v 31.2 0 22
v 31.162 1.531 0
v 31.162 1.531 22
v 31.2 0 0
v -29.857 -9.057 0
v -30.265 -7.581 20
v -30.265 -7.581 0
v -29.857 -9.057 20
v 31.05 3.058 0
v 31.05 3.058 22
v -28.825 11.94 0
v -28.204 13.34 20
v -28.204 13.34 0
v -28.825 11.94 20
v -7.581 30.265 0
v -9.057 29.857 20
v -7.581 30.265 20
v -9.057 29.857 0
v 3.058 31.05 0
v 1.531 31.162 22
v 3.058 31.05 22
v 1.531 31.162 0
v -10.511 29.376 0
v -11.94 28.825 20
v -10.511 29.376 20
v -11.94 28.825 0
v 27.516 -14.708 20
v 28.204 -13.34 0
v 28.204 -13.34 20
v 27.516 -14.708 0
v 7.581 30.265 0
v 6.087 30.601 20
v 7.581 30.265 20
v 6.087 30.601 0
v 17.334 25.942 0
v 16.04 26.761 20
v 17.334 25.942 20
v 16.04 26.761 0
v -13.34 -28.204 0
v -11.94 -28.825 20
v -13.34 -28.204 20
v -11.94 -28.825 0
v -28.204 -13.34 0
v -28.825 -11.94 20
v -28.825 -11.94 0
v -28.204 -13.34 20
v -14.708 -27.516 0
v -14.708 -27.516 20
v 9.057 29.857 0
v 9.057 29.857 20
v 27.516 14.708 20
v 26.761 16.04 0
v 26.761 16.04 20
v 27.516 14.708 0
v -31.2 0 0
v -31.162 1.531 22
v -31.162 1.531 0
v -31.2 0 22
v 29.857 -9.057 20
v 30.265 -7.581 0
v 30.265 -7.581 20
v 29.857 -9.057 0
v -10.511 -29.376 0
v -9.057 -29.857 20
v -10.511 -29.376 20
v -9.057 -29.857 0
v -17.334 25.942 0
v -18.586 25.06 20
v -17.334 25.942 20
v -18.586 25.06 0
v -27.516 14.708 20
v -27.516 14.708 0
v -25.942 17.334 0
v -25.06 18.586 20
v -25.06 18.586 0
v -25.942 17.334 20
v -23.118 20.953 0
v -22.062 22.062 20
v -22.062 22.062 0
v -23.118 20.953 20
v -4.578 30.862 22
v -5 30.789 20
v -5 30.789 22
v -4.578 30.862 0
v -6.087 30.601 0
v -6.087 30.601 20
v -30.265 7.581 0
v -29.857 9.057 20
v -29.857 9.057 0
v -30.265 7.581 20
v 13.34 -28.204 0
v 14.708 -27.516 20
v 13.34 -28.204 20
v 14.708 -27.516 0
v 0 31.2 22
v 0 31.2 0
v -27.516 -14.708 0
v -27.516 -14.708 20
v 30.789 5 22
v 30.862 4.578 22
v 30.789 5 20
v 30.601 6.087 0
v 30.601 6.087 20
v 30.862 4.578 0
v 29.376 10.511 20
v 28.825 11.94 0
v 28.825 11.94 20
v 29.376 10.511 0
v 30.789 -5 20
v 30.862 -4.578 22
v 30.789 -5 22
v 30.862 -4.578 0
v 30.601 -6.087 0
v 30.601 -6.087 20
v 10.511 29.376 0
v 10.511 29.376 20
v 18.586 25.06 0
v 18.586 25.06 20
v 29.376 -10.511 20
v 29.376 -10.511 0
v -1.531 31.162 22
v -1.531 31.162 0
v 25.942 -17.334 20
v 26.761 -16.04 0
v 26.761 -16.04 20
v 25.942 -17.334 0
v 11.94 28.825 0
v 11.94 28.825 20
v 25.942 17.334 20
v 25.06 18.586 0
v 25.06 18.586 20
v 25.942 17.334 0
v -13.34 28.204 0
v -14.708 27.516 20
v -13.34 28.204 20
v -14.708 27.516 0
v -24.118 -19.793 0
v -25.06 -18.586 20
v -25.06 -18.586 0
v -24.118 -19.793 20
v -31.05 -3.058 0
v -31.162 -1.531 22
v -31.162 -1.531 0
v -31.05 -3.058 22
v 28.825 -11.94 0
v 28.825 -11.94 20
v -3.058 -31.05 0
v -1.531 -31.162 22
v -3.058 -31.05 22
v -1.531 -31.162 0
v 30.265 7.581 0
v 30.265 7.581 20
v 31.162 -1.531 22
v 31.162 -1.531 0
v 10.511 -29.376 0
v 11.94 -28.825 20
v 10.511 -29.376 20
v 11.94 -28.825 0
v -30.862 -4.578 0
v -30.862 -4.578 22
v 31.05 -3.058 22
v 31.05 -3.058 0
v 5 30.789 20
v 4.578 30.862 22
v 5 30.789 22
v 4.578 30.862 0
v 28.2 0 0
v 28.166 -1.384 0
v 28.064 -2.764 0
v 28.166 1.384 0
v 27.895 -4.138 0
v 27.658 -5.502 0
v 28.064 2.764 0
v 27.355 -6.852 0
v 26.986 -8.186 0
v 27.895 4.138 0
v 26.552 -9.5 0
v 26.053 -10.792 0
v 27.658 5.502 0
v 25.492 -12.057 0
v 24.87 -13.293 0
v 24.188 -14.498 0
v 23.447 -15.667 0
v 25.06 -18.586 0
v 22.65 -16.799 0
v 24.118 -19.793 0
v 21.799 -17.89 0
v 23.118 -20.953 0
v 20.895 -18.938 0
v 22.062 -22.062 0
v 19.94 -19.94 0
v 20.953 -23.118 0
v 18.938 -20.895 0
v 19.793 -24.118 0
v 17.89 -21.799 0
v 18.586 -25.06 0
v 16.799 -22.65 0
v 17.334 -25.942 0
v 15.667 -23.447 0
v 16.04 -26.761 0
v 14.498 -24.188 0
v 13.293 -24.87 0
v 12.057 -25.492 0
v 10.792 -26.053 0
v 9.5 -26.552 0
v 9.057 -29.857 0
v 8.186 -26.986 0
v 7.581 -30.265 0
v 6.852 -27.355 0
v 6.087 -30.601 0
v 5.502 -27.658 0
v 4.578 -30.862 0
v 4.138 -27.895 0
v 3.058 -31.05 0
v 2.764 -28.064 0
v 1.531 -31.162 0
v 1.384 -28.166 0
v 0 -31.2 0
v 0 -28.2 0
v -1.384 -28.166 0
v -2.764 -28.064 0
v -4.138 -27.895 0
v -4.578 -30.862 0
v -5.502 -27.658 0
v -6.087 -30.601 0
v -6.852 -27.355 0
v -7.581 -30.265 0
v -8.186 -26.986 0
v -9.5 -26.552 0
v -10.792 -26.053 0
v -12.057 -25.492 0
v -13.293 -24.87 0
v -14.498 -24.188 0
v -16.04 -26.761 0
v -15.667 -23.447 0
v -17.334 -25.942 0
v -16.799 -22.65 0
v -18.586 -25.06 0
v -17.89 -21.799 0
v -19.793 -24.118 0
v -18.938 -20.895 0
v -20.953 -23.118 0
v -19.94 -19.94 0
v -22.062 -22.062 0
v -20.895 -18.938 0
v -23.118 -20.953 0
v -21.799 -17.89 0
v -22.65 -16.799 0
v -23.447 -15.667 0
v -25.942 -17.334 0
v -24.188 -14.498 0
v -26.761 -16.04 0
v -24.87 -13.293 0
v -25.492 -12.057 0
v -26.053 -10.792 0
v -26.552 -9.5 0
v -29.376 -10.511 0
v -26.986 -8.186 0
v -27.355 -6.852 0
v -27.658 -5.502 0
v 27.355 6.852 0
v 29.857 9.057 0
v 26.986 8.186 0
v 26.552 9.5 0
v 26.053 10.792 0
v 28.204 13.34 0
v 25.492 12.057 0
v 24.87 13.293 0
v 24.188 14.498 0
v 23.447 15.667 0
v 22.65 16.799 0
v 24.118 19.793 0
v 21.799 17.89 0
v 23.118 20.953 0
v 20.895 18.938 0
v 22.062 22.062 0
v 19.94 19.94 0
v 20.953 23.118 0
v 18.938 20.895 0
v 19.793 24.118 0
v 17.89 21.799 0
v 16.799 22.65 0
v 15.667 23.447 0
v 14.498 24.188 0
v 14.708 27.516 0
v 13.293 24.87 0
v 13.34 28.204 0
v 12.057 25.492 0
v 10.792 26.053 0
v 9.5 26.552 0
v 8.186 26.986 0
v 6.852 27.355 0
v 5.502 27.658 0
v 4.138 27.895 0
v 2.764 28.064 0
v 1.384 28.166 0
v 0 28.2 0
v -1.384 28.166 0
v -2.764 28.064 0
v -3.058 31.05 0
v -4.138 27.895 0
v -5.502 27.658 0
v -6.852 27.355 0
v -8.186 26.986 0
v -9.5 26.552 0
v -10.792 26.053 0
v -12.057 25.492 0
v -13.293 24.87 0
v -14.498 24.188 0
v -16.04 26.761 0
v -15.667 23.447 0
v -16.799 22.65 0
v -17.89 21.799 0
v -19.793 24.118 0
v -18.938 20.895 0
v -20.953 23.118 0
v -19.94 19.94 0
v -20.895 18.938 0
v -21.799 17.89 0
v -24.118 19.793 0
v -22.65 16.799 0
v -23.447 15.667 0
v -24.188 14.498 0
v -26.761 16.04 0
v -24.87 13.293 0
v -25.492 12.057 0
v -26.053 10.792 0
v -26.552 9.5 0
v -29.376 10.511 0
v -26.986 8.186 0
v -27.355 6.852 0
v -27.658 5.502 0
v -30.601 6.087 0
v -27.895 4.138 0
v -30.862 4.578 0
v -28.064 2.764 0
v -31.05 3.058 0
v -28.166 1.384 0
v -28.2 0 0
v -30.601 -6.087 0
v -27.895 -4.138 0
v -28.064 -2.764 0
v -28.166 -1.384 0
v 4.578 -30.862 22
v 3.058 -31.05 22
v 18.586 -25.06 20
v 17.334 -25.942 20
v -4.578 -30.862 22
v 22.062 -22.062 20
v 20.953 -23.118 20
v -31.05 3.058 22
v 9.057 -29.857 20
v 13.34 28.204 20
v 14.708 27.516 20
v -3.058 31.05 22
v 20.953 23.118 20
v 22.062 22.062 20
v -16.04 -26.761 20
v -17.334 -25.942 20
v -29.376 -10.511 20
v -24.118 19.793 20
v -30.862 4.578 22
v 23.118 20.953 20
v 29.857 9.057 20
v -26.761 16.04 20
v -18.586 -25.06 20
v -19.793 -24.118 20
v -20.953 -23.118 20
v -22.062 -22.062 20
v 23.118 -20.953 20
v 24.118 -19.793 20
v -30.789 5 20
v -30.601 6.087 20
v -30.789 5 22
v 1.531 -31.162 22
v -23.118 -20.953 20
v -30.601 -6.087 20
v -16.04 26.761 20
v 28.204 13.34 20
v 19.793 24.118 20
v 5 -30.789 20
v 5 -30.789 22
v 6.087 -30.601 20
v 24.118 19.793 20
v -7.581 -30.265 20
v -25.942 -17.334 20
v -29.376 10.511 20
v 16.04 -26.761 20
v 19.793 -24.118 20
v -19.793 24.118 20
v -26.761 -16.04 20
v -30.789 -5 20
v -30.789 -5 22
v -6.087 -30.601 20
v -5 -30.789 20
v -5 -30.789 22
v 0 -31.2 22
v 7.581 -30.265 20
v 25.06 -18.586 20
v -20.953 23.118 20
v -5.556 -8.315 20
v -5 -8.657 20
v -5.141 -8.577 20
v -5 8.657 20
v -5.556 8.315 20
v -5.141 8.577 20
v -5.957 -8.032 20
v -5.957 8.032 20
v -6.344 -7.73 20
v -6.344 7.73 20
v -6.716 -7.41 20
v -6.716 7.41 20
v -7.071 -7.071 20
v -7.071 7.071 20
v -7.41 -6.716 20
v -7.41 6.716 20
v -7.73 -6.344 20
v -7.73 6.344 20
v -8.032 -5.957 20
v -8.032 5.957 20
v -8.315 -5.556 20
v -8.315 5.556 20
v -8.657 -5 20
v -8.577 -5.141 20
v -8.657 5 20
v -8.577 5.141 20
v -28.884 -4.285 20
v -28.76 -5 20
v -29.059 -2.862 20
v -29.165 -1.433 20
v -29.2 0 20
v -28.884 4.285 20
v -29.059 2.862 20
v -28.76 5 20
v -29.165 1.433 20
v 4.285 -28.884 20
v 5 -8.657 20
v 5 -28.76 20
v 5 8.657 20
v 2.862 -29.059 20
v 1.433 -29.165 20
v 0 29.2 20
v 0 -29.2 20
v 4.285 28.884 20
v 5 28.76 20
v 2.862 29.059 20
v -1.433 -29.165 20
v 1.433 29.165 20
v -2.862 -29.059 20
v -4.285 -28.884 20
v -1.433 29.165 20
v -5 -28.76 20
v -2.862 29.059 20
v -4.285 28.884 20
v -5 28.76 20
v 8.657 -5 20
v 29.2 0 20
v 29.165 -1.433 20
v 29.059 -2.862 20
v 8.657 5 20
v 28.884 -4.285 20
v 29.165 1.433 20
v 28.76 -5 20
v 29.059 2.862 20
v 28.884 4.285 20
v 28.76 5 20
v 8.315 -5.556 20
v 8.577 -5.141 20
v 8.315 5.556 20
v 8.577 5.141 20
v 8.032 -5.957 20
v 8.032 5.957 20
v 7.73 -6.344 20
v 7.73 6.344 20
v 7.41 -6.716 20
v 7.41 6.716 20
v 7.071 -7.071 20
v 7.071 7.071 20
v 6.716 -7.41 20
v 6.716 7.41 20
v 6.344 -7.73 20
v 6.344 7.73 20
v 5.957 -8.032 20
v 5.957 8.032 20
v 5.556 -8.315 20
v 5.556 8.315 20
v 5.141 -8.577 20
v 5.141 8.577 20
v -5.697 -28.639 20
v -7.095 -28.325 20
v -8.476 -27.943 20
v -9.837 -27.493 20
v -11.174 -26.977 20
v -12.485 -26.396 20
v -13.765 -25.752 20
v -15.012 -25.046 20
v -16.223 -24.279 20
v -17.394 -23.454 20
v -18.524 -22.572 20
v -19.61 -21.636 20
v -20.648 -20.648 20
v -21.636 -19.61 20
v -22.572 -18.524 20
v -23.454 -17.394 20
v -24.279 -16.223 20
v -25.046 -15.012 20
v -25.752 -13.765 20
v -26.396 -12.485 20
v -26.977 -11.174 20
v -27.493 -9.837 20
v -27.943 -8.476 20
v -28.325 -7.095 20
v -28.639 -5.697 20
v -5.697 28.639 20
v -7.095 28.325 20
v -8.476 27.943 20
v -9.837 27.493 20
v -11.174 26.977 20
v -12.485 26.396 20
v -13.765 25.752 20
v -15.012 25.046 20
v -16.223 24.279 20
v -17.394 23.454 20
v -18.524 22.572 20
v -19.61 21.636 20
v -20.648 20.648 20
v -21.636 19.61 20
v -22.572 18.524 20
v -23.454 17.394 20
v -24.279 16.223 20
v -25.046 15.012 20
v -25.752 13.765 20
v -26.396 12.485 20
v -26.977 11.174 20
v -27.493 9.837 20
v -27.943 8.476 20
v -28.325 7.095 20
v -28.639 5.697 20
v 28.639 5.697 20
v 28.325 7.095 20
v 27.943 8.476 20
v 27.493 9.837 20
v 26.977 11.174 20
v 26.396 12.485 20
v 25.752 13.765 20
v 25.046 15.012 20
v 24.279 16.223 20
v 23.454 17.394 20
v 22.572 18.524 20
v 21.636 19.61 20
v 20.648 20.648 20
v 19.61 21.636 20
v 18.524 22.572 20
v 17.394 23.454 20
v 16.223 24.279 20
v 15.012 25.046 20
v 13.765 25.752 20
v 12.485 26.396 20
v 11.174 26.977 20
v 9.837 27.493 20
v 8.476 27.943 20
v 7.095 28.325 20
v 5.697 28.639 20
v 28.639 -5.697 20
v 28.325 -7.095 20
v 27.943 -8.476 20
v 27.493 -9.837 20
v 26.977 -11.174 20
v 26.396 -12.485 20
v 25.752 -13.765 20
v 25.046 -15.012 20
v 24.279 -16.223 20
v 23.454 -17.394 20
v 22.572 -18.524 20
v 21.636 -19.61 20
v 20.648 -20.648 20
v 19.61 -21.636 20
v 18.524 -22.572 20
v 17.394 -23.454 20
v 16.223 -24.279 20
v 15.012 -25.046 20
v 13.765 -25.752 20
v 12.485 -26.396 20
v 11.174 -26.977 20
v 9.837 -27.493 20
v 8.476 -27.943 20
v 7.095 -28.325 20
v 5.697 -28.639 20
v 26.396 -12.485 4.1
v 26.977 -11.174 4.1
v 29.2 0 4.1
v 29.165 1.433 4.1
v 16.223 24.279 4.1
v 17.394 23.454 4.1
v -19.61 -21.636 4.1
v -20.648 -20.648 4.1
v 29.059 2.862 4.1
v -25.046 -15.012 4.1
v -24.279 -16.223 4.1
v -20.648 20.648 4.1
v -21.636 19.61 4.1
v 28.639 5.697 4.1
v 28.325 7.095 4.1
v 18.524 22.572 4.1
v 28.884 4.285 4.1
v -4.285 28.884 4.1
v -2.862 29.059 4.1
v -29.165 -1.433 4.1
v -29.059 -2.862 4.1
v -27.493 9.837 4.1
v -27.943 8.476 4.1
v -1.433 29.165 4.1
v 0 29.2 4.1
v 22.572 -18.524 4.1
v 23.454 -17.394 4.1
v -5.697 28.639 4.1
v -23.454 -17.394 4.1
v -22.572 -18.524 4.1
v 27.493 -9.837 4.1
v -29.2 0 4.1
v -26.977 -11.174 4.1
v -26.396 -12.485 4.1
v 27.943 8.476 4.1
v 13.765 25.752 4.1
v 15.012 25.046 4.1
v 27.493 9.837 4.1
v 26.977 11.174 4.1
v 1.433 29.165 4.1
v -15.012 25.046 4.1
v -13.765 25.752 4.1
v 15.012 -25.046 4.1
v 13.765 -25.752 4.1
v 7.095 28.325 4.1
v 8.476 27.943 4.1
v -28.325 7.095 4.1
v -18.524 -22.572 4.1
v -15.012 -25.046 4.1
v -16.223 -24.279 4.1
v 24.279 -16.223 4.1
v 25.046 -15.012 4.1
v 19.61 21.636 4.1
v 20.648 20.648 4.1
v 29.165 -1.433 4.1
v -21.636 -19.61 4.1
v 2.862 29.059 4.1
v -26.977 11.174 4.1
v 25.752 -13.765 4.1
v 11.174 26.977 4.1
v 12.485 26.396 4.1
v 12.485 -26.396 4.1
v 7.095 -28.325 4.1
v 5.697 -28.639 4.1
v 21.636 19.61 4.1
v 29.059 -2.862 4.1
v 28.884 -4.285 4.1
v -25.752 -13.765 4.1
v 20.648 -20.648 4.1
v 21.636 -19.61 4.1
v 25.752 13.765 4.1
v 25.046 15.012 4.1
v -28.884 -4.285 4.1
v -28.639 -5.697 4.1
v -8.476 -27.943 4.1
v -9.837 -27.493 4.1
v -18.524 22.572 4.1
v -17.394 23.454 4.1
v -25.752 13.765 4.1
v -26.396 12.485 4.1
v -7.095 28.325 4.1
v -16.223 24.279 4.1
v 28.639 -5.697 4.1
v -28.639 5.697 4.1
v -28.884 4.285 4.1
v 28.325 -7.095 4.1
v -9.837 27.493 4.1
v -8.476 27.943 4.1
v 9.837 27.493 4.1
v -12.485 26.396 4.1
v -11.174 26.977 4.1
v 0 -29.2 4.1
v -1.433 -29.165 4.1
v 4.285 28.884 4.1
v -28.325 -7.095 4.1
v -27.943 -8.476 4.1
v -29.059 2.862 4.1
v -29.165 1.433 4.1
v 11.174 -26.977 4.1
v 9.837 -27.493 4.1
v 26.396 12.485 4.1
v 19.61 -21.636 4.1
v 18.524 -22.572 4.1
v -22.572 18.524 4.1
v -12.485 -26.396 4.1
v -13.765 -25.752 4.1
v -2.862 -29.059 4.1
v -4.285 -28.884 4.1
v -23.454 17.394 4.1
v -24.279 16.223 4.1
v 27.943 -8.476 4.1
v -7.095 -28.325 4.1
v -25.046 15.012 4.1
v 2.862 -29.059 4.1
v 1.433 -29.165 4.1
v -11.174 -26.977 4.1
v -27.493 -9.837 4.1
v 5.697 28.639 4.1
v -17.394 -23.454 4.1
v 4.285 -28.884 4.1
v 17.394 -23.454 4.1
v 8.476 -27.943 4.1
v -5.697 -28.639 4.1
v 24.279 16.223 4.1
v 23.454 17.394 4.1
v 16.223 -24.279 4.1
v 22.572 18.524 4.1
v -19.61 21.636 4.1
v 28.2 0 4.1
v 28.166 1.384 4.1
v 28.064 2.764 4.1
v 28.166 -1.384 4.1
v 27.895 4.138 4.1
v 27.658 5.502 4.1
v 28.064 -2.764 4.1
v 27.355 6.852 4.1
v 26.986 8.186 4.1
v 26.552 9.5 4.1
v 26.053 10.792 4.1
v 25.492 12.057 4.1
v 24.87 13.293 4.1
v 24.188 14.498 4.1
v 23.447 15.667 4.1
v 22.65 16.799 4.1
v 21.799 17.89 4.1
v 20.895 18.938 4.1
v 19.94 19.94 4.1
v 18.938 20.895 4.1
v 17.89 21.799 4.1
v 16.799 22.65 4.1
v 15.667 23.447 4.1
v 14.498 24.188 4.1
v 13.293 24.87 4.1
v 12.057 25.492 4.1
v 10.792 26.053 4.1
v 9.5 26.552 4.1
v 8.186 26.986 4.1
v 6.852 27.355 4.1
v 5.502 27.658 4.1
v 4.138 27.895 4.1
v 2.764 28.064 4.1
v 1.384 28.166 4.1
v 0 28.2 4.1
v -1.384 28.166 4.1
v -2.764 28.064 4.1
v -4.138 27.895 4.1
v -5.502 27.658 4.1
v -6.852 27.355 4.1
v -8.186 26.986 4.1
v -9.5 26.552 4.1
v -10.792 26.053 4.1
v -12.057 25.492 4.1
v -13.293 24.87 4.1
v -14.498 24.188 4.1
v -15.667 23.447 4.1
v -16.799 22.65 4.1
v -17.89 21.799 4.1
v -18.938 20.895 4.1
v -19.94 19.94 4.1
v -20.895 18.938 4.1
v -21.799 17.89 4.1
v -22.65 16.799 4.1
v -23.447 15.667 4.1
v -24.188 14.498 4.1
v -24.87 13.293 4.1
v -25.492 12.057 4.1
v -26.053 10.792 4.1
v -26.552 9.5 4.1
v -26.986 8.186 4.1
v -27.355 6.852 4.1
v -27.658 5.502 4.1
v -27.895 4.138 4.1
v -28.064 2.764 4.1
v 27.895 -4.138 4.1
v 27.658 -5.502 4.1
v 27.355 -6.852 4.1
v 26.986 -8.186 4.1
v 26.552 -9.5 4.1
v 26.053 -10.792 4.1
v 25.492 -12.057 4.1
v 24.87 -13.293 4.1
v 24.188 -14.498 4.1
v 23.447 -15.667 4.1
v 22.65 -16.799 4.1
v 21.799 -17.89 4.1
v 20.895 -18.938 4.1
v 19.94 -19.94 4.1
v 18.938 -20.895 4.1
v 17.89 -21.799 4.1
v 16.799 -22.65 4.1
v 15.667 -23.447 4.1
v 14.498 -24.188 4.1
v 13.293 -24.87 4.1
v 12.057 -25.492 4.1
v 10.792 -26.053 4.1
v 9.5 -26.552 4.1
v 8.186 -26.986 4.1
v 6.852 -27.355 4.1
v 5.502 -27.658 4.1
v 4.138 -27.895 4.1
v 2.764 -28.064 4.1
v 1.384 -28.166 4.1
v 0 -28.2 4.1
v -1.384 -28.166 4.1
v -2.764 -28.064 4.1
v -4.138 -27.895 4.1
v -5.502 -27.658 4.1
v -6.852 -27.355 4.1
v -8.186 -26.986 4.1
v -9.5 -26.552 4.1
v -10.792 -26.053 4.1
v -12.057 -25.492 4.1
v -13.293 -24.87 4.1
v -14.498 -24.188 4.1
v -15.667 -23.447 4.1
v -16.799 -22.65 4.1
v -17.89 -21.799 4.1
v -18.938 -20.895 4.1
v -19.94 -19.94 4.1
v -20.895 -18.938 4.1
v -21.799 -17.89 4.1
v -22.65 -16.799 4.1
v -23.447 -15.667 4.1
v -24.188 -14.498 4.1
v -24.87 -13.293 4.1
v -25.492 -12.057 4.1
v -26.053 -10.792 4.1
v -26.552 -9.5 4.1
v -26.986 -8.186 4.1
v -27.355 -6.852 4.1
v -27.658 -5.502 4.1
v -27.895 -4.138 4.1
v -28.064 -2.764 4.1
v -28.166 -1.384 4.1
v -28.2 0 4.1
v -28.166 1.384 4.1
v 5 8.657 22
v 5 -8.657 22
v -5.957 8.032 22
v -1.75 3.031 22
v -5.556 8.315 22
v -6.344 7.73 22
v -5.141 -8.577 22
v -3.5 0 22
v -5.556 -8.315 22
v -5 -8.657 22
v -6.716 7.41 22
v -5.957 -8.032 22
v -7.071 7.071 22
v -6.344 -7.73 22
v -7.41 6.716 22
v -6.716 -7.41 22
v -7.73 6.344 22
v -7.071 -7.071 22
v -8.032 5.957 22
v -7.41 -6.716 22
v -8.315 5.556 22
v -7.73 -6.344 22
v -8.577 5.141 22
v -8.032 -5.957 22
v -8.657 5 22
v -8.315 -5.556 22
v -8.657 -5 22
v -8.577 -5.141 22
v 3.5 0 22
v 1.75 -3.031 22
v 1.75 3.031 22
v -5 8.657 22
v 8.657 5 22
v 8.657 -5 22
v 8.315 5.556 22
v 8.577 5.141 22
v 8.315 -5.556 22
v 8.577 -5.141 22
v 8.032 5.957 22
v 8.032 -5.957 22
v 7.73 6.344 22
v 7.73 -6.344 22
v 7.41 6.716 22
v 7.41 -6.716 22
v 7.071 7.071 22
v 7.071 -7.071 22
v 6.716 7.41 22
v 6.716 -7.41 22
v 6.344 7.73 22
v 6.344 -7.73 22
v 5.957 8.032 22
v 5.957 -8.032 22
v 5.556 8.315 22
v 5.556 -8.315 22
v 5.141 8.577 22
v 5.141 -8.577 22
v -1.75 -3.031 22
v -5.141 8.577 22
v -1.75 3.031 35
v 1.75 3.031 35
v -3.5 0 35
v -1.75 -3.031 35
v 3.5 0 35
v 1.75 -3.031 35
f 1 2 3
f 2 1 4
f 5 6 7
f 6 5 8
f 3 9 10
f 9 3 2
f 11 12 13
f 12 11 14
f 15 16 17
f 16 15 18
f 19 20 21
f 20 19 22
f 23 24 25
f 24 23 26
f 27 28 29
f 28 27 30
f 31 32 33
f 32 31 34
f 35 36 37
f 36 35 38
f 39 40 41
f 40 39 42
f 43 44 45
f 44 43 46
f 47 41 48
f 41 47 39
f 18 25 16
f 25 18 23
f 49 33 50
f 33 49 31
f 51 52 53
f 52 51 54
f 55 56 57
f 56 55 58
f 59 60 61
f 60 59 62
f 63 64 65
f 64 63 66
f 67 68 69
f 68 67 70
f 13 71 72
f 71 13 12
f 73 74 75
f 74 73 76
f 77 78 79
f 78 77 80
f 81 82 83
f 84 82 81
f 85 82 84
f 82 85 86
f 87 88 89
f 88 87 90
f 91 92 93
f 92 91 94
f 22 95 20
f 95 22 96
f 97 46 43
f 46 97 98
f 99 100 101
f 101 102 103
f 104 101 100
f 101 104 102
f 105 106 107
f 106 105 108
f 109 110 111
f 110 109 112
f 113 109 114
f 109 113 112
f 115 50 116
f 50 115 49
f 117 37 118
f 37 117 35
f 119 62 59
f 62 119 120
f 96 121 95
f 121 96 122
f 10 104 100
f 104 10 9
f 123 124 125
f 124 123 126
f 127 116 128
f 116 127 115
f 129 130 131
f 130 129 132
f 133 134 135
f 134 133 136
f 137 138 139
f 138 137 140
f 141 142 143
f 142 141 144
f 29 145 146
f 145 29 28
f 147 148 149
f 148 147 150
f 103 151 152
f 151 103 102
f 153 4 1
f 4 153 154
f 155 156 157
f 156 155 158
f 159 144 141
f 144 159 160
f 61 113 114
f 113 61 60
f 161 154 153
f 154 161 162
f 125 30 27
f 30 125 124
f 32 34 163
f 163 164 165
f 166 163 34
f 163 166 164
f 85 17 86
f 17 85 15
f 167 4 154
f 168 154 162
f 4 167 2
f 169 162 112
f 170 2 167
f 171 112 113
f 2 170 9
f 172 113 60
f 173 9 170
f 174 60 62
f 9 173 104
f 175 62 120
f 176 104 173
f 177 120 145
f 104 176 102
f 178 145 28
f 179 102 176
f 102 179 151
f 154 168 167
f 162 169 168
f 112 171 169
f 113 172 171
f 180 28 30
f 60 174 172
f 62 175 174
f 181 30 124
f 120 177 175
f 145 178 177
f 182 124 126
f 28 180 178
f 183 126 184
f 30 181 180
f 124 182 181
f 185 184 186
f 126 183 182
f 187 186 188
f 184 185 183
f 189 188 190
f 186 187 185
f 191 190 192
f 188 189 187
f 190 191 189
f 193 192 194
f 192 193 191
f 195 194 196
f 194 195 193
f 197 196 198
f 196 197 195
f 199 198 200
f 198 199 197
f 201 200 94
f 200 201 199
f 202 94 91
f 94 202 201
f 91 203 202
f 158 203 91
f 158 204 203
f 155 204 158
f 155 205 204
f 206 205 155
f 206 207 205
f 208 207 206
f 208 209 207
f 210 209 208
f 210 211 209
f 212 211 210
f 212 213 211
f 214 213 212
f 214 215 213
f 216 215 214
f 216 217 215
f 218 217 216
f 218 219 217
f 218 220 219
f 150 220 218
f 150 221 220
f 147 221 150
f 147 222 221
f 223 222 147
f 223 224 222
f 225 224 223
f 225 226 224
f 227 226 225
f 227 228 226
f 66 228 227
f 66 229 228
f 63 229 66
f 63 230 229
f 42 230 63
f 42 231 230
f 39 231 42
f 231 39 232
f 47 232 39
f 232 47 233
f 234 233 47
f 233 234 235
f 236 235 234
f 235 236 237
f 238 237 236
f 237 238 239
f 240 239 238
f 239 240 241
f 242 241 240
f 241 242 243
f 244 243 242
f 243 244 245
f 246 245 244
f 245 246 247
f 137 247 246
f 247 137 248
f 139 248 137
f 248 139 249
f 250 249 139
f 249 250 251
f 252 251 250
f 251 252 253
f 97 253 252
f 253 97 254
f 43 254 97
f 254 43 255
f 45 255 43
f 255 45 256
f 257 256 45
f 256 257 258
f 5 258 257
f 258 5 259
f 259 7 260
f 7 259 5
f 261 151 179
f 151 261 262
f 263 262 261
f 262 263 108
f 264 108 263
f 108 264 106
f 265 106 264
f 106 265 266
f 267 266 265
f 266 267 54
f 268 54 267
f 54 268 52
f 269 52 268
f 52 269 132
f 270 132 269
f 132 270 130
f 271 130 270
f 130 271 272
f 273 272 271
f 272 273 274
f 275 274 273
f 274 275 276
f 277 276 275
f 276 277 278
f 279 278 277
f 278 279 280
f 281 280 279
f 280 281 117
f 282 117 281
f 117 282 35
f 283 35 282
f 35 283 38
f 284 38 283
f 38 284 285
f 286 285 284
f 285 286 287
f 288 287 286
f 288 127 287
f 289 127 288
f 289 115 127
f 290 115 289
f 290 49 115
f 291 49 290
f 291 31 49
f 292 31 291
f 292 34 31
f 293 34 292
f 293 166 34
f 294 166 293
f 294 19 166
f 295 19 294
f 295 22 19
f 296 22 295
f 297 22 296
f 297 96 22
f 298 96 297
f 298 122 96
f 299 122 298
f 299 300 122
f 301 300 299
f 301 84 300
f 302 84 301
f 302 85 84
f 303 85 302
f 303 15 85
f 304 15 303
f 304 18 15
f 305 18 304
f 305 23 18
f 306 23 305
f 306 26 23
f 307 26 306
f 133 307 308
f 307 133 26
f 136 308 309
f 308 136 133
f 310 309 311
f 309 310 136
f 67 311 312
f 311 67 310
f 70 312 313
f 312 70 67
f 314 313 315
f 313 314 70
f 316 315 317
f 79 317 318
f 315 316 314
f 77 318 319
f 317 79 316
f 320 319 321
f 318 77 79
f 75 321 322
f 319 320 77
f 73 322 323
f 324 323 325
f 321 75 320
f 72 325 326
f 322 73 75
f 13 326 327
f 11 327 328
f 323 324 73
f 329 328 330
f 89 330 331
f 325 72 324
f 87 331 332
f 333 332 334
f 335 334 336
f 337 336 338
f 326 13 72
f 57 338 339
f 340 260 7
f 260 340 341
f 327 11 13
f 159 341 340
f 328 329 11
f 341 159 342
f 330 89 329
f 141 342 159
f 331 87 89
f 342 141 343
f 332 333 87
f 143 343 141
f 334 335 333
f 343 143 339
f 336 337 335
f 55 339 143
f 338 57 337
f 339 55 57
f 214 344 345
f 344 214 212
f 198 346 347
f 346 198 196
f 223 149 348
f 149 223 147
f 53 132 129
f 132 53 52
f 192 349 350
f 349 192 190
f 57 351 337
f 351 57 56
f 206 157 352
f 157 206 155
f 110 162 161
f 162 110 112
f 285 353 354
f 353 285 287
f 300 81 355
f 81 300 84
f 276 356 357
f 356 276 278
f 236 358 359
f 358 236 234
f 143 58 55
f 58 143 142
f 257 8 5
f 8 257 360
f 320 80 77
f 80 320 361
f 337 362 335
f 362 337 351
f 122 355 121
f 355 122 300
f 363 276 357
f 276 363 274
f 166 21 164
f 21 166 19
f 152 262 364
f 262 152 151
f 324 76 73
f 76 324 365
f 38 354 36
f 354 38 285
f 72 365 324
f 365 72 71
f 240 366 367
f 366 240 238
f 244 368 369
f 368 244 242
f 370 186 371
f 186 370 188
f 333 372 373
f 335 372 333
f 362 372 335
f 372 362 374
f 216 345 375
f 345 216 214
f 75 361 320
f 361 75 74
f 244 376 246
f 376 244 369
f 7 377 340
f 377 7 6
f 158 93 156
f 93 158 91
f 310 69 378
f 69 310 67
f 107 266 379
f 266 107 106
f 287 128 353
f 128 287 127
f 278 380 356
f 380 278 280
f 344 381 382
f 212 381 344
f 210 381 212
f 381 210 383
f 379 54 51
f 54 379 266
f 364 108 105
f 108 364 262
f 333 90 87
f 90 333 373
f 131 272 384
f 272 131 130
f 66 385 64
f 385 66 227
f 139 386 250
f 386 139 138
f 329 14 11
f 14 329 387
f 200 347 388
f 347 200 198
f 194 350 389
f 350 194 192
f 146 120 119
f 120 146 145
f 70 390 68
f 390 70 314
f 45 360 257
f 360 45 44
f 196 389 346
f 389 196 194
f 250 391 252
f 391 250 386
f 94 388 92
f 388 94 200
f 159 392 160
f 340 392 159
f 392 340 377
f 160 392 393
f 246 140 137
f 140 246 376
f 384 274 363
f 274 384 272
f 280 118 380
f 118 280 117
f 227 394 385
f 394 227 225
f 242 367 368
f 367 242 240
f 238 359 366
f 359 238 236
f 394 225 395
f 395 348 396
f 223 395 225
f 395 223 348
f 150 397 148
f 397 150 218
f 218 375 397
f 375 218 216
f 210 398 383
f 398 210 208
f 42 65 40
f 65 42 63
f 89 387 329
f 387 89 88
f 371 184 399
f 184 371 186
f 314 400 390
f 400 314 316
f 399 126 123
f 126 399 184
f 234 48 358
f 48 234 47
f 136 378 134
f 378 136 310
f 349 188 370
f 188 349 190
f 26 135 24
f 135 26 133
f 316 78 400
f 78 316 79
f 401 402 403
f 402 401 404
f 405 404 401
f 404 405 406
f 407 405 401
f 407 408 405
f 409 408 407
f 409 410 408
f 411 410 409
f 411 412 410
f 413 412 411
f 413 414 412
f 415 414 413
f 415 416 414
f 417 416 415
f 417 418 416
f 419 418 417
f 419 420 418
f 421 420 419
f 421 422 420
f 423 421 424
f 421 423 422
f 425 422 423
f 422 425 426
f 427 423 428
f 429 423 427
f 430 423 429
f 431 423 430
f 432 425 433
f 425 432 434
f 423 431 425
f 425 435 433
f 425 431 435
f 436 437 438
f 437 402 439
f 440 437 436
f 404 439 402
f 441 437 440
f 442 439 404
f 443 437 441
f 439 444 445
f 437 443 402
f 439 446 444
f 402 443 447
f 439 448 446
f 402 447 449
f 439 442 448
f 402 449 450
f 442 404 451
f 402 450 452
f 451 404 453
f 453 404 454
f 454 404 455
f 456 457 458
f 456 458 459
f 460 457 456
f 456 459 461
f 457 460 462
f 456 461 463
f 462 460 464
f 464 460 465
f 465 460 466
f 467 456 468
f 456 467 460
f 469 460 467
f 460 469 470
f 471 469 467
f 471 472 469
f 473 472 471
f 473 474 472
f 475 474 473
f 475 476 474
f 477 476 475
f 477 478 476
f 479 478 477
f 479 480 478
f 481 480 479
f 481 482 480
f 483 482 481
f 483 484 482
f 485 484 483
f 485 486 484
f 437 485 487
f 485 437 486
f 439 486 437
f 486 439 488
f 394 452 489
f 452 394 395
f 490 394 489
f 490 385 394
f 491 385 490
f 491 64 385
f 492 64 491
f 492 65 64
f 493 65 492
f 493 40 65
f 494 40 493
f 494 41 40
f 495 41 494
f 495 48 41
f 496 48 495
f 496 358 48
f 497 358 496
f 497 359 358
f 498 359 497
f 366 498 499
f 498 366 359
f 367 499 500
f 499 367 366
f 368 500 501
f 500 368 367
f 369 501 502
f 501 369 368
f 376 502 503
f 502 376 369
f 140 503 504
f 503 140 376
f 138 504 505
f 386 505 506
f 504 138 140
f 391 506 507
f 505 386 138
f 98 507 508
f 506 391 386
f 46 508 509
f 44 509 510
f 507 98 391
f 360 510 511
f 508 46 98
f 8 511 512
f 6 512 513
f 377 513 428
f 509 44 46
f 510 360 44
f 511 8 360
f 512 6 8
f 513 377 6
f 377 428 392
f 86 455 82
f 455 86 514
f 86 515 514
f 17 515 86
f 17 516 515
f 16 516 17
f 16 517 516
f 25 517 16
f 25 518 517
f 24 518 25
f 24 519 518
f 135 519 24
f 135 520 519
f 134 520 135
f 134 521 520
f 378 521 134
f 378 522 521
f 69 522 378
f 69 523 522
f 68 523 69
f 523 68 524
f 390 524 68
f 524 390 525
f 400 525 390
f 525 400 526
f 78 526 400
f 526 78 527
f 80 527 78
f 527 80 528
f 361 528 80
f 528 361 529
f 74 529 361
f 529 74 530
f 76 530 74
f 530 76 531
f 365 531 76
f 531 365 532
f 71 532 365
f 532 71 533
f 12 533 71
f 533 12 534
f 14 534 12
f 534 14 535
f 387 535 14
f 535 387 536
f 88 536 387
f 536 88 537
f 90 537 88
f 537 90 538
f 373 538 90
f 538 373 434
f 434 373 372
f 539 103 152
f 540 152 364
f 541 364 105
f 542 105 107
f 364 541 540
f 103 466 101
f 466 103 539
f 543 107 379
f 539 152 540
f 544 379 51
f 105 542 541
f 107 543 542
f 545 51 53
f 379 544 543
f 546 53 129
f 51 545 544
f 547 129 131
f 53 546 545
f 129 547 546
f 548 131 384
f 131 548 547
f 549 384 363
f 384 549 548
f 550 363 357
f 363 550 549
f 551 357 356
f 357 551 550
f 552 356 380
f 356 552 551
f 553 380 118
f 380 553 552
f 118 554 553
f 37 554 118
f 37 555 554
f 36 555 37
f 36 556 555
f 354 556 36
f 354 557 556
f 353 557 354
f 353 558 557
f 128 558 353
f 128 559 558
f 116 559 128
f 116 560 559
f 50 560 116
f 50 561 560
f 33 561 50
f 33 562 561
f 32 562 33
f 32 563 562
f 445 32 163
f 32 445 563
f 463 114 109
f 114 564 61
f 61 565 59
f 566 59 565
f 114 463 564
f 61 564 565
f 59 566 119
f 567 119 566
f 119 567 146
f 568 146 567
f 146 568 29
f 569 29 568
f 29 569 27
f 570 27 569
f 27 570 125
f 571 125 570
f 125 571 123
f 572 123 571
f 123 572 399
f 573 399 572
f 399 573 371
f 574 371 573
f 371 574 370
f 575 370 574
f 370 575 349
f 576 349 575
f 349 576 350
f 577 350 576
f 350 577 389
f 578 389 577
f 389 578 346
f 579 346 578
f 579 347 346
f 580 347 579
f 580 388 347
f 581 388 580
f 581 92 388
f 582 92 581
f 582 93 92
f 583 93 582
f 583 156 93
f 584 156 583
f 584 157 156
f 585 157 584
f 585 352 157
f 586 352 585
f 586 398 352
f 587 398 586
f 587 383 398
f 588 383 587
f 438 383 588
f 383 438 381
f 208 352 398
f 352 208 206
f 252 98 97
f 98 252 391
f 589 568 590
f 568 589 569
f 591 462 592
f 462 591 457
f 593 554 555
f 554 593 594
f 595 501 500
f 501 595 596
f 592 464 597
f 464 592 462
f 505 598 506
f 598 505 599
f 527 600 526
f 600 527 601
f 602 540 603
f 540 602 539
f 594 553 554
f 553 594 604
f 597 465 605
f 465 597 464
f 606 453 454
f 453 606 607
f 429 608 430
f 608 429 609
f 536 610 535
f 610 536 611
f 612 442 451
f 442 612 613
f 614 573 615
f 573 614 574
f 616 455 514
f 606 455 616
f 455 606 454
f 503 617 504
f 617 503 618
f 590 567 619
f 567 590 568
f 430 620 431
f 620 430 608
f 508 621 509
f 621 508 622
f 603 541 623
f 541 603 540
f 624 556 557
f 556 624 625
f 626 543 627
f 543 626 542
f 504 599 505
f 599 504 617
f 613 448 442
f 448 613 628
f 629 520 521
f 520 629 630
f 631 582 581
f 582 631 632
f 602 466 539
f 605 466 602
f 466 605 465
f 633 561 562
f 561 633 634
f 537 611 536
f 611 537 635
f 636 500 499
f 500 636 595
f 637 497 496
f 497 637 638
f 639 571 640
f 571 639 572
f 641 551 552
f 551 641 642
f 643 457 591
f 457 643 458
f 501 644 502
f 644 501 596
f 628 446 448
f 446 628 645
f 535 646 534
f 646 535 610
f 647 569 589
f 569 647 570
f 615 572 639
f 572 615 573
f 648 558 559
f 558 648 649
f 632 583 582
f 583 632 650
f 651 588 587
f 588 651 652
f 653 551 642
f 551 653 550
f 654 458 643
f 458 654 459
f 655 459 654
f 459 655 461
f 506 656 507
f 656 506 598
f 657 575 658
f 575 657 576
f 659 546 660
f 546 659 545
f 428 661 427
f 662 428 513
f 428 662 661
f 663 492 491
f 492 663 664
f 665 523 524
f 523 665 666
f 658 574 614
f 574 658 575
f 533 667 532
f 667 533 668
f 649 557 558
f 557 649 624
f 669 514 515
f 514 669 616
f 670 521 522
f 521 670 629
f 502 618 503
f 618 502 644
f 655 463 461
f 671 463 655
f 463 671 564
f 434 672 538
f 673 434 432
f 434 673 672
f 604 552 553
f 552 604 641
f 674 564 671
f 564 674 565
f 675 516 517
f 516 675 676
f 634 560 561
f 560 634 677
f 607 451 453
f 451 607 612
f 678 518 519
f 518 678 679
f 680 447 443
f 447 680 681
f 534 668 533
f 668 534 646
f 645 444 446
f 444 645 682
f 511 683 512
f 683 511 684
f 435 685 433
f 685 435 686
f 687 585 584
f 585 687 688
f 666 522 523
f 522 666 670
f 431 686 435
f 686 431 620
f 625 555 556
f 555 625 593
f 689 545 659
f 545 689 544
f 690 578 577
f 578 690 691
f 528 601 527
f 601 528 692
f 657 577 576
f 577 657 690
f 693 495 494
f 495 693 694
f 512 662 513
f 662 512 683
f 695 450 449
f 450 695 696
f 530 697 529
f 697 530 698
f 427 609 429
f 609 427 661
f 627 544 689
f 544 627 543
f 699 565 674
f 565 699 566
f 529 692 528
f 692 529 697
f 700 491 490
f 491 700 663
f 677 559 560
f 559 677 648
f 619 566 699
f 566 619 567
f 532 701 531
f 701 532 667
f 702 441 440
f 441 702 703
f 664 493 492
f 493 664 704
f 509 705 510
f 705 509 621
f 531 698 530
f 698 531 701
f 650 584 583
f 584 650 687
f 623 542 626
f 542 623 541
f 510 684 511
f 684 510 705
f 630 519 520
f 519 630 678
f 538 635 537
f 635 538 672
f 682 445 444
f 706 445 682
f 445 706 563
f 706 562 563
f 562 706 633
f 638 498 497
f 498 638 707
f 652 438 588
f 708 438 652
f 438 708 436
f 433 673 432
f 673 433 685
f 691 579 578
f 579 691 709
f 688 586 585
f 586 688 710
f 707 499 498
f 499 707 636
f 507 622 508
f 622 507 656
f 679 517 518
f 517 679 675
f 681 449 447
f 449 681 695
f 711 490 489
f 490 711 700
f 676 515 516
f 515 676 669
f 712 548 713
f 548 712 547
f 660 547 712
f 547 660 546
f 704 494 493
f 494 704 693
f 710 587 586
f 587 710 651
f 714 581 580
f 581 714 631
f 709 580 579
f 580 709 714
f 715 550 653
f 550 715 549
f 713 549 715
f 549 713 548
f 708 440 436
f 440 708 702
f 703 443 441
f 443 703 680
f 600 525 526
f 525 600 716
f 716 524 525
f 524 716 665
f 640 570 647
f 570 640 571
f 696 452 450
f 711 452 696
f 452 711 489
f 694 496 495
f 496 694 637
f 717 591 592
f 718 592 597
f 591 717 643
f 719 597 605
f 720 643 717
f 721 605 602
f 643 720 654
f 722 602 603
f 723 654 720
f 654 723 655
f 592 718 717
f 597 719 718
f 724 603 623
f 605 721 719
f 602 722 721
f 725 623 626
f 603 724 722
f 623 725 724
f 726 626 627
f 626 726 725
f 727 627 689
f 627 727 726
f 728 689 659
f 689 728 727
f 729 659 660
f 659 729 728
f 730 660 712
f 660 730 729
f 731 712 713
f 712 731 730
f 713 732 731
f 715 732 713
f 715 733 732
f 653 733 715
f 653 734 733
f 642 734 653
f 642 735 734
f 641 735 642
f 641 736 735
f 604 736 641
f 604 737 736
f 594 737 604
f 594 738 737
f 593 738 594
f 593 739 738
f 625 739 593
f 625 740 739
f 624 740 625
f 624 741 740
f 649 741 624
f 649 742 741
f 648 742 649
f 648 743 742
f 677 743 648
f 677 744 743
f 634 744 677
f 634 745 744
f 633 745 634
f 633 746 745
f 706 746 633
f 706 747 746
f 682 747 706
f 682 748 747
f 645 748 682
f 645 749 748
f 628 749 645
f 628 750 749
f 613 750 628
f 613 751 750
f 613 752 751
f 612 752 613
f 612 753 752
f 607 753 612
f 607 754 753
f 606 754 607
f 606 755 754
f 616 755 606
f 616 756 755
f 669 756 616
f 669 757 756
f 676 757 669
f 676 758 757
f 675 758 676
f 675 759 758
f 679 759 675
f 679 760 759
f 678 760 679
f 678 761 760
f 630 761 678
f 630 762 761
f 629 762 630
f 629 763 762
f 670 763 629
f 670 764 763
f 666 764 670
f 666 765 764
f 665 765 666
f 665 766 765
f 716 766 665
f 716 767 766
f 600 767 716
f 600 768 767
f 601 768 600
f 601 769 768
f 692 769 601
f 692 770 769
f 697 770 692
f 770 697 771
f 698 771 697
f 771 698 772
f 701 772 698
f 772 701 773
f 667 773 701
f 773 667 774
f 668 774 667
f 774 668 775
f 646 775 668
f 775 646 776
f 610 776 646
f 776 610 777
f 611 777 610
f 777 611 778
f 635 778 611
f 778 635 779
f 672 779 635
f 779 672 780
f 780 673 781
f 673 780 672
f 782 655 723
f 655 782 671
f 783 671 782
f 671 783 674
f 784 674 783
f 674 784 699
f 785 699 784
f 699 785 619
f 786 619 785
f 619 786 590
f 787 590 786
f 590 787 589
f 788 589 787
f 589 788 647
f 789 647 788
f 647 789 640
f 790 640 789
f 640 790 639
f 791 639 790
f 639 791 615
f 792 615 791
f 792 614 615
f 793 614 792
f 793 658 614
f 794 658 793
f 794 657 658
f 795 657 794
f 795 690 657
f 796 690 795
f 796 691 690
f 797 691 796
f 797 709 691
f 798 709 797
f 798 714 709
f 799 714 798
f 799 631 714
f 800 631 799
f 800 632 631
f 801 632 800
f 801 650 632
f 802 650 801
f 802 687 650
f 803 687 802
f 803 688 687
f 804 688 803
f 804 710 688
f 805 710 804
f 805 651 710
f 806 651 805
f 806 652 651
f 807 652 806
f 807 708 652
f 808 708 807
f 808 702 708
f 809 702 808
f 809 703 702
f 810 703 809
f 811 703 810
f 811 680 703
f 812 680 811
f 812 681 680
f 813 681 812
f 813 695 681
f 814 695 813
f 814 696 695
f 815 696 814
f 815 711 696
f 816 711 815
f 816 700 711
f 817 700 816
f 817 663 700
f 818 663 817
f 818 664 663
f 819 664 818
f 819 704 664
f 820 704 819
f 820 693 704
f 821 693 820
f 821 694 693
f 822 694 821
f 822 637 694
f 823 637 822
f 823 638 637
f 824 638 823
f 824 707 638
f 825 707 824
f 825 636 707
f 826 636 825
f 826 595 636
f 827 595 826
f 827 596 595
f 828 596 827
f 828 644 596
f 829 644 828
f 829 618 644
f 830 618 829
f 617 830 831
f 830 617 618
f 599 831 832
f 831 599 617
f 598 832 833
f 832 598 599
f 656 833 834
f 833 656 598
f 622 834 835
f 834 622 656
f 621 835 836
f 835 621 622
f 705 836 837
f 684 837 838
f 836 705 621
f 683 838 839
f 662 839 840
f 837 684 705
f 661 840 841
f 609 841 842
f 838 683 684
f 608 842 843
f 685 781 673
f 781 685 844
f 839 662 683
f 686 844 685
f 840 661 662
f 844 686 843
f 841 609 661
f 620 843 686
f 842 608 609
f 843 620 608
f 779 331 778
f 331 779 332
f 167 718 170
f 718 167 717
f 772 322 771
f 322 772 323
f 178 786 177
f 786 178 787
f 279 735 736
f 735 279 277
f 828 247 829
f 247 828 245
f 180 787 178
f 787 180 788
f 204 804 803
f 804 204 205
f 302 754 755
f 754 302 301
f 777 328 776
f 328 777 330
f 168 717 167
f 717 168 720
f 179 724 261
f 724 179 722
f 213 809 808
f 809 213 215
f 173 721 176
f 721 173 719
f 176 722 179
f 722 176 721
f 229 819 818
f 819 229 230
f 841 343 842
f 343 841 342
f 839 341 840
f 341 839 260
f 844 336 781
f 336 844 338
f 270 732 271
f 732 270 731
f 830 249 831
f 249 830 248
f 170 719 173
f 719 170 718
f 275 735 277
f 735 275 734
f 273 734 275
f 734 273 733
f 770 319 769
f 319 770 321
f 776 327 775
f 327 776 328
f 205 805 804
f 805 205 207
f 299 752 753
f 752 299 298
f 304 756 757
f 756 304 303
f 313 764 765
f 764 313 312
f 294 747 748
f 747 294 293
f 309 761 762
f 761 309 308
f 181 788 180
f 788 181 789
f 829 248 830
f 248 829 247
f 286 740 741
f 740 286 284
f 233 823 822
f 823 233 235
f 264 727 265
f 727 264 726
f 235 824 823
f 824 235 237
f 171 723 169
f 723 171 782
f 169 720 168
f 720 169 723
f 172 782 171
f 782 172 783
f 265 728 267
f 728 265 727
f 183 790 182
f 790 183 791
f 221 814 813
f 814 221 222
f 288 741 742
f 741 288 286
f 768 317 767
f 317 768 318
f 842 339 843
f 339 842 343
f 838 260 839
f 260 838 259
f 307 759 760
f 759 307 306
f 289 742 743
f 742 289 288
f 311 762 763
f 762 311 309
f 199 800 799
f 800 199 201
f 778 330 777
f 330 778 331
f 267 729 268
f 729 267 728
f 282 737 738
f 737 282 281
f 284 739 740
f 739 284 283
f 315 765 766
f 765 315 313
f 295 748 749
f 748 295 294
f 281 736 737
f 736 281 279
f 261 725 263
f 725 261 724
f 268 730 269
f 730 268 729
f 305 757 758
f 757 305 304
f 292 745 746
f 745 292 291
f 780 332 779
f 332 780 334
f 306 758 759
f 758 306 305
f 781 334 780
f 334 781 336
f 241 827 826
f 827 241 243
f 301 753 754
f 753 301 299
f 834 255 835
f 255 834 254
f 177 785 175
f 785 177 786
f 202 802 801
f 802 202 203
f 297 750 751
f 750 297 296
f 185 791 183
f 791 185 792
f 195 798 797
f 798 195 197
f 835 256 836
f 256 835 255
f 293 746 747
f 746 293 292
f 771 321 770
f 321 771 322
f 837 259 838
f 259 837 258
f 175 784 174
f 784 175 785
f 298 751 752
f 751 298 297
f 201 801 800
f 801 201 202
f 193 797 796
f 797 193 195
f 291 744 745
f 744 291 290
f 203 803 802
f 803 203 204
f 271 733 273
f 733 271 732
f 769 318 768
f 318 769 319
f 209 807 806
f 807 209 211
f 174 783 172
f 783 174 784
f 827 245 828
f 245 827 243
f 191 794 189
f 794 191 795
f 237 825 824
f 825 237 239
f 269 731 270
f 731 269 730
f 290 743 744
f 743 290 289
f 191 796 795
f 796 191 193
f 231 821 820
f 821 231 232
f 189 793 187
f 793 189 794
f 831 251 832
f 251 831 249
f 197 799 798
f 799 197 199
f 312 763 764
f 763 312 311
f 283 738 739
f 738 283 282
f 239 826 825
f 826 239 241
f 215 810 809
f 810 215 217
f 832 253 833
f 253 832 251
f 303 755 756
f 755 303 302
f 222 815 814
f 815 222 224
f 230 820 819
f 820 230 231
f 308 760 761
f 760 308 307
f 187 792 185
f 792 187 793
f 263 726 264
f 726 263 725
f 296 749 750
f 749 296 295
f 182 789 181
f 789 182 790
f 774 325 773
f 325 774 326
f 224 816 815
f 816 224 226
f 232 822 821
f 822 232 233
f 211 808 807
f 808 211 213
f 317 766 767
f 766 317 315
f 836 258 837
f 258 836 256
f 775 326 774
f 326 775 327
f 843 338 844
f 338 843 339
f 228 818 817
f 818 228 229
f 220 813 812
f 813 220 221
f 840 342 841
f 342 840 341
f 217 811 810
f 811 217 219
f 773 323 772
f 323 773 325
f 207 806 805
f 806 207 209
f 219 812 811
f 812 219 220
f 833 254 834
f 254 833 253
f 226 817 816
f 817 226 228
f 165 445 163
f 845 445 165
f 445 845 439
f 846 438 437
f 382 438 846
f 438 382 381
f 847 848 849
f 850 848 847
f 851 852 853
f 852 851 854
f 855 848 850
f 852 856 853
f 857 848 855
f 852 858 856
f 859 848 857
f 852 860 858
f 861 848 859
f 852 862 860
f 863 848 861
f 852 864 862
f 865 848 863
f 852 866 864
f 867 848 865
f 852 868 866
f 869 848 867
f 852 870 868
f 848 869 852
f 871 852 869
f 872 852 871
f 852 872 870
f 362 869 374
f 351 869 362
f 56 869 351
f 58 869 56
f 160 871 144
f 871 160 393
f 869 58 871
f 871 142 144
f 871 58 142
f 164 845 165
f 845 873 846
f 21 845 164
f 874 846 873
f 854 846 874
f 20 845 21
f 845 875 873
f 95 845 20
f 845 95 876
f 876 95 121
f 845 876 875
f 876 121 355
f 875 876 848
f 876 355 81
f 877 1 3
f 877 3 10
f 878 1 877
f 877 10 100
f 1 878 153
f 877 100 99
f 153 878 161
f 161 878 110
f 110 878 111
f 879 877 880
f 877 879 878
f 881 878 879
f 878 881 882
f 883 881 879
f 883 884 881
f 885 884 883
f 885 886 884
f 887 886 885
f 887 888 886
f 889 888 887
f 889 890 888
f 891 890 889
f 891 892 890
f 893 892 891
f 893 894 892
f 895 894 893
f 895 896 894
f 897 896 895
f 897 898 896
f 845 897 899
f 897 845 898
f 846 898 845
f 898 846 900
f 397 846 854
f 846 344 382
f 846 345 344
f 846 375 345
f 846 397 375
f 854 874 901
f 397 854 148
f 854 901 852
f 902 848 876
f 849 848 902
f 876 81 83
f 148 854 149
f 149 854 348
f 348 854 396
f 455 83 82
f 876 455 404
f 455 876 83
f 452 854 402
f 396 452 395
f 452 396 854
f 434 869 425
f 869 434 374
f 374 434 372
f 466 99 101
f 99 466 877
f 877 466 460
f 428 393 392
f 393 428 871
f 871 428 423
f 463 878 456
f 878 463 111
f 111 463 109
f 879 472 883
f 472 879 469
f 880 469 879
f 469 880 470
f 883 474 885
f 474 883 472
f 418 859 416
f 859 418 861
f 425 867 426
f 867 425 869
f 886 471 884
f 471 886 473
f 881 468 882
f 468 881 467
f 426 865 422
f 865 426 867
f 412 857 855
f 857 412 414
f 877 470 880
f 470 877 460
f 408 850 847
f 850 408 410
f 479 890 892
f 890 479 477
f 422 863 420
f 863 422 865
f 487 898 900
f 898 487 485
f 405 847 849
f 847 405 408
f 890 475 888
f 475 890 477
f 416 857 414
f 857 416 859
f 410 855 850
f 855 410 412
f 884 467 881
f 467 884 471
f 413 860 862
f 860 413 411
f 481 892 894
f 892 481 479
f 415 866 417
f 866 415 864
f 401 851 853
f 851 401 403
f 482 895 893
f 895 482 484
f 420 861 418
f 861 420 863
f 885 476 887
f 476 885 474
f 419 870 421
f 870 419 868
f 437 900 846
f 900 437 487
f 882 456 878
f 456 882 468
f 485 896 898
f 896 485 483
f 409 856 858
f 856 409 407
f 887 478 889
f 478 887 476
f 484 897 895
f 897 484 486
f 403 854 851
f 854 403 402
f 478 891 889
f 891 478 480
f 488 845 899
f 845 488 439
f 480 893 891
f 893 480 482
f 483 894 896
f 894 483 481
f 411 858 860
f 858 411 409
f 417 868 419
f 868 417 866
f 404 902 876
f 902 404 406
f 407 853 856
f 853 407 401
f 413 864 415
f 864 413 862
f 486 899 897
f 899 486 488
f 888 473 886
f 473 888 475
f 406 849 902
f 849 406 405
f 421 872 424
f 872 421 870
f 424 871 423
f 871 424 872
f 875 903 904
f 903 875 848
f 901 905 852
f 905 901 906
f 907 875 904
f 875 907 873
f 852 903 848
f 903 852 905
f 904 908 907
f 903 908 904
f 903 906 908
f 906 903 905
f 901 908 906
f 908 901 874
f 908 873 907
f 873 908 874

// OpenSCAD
// file: centercap_params.scad
// Bearing parameters
bearing_outer_diam = 22;
bearing_inner_diam = 8;
bearing_height = 7;
bearing_tolerance= 0.1;

// Base parameters
base_height = 2; //4.4;
outer_diam = 65;

bearing_wall_width = 2.5;

inner_ring_height = 10;
inner_ring_diam = 56;
inner_ring_wall_width = 2;

clip_clearance = 2;
clip_length = 13;
clip_height = 12;
clip_width = 2;
clip_straight_height = 4.5;
clip_slant_height = 5;

// Swing parameters
arm_width = 13.5;
arm_clearance = 2;
arm_length = inner_ring_diam / 2 - inner_ring_wall_width - arm_clearance;
arm_height = 3; // 2;
echo(arm_length);

bearing_start_z_offset = 1.6;
bearing_z_start = arm_height + bearing_start_z_offset;
bearing_z_mid = bearing_z_start + bearing_height / 2;

nut_width = 8.08; // Measured corner to corner
nut_height = 3.2;
nut_hole_size = 4.2;
nut_tolerance = 0.2;
nut_loose_width = nut_width + nut_tolerance;
nut_clearance = 0.1; // 0.1
screw_head_height = 2 * 3.2;

swing_clearance = 1;
swing_height = bearing_height + arm_height + bearing_start_z_offset - swing_clearance - screw_head_height;//bearing_z_mid + nut_height / 2;

shaft_height = 12.25;
notch_size = 2;
notch_length = 3;

swing_inner_diam = arm_length - nut_loose_width - 2 * nut_clearance; // TODO change name or *2

// Top parameters
endcap_tolerance = 0.4;
endcap_height = 1;

bottom_height = 2; //4.4;

mid_diam = 20;
mid_height = 1.5;

top_diam = 10.5;
top_height = 1.1;

endcap_hole_height = bottom_height + mid_height + top_height - endcap_height;

// Curved VW parameters
logo_height = 1;
dome_height = 4;
// main file
include <centercap_params.scad>

$fn = $preview ? 16 : 128;

h = 20;
holder_inner_diam = inner_ring_diam + endcap_tolerance + 1 * inner_ring_wall_width;

holder_diam = holder_inner_diam + 2 * 2;

difference() {
    cylinder(h, d=holder_diam);
    
    cylinder(h, d=holder_inner_diam);
}

difference() {
    cylinder(h=clip_straight_height - endcap_tolerance, d=holder_inner_diam);

    cylinder(h=clip_straight_height - endcap_tolerance, d=holder_inner_diam - 2);
    
}

bit_diam = 7;
bit_height = 15;
translate([0, 0, h]) {
    /*
    intersection() {
        cylinder(h= (holder_diam - bit_diam) / 2 * tan(45) , d1=holder_diam, d2=bit_diam);

    }*/
    
    intersection() {
        cylinder(h=2, d=holder_diam);
        
        
        union() {
            w = 10;
            
            translate([0, 0, 2 /2]) {
                cube([w, holder_diam, 2], center=true);
                cube([holder_diam, w, 2], center=true);
            }
            cylinder(h=2, d= 2 * w);
        }
    }
    cylinder(h=bit_height, d=bit_diam, $fn=6);
}
